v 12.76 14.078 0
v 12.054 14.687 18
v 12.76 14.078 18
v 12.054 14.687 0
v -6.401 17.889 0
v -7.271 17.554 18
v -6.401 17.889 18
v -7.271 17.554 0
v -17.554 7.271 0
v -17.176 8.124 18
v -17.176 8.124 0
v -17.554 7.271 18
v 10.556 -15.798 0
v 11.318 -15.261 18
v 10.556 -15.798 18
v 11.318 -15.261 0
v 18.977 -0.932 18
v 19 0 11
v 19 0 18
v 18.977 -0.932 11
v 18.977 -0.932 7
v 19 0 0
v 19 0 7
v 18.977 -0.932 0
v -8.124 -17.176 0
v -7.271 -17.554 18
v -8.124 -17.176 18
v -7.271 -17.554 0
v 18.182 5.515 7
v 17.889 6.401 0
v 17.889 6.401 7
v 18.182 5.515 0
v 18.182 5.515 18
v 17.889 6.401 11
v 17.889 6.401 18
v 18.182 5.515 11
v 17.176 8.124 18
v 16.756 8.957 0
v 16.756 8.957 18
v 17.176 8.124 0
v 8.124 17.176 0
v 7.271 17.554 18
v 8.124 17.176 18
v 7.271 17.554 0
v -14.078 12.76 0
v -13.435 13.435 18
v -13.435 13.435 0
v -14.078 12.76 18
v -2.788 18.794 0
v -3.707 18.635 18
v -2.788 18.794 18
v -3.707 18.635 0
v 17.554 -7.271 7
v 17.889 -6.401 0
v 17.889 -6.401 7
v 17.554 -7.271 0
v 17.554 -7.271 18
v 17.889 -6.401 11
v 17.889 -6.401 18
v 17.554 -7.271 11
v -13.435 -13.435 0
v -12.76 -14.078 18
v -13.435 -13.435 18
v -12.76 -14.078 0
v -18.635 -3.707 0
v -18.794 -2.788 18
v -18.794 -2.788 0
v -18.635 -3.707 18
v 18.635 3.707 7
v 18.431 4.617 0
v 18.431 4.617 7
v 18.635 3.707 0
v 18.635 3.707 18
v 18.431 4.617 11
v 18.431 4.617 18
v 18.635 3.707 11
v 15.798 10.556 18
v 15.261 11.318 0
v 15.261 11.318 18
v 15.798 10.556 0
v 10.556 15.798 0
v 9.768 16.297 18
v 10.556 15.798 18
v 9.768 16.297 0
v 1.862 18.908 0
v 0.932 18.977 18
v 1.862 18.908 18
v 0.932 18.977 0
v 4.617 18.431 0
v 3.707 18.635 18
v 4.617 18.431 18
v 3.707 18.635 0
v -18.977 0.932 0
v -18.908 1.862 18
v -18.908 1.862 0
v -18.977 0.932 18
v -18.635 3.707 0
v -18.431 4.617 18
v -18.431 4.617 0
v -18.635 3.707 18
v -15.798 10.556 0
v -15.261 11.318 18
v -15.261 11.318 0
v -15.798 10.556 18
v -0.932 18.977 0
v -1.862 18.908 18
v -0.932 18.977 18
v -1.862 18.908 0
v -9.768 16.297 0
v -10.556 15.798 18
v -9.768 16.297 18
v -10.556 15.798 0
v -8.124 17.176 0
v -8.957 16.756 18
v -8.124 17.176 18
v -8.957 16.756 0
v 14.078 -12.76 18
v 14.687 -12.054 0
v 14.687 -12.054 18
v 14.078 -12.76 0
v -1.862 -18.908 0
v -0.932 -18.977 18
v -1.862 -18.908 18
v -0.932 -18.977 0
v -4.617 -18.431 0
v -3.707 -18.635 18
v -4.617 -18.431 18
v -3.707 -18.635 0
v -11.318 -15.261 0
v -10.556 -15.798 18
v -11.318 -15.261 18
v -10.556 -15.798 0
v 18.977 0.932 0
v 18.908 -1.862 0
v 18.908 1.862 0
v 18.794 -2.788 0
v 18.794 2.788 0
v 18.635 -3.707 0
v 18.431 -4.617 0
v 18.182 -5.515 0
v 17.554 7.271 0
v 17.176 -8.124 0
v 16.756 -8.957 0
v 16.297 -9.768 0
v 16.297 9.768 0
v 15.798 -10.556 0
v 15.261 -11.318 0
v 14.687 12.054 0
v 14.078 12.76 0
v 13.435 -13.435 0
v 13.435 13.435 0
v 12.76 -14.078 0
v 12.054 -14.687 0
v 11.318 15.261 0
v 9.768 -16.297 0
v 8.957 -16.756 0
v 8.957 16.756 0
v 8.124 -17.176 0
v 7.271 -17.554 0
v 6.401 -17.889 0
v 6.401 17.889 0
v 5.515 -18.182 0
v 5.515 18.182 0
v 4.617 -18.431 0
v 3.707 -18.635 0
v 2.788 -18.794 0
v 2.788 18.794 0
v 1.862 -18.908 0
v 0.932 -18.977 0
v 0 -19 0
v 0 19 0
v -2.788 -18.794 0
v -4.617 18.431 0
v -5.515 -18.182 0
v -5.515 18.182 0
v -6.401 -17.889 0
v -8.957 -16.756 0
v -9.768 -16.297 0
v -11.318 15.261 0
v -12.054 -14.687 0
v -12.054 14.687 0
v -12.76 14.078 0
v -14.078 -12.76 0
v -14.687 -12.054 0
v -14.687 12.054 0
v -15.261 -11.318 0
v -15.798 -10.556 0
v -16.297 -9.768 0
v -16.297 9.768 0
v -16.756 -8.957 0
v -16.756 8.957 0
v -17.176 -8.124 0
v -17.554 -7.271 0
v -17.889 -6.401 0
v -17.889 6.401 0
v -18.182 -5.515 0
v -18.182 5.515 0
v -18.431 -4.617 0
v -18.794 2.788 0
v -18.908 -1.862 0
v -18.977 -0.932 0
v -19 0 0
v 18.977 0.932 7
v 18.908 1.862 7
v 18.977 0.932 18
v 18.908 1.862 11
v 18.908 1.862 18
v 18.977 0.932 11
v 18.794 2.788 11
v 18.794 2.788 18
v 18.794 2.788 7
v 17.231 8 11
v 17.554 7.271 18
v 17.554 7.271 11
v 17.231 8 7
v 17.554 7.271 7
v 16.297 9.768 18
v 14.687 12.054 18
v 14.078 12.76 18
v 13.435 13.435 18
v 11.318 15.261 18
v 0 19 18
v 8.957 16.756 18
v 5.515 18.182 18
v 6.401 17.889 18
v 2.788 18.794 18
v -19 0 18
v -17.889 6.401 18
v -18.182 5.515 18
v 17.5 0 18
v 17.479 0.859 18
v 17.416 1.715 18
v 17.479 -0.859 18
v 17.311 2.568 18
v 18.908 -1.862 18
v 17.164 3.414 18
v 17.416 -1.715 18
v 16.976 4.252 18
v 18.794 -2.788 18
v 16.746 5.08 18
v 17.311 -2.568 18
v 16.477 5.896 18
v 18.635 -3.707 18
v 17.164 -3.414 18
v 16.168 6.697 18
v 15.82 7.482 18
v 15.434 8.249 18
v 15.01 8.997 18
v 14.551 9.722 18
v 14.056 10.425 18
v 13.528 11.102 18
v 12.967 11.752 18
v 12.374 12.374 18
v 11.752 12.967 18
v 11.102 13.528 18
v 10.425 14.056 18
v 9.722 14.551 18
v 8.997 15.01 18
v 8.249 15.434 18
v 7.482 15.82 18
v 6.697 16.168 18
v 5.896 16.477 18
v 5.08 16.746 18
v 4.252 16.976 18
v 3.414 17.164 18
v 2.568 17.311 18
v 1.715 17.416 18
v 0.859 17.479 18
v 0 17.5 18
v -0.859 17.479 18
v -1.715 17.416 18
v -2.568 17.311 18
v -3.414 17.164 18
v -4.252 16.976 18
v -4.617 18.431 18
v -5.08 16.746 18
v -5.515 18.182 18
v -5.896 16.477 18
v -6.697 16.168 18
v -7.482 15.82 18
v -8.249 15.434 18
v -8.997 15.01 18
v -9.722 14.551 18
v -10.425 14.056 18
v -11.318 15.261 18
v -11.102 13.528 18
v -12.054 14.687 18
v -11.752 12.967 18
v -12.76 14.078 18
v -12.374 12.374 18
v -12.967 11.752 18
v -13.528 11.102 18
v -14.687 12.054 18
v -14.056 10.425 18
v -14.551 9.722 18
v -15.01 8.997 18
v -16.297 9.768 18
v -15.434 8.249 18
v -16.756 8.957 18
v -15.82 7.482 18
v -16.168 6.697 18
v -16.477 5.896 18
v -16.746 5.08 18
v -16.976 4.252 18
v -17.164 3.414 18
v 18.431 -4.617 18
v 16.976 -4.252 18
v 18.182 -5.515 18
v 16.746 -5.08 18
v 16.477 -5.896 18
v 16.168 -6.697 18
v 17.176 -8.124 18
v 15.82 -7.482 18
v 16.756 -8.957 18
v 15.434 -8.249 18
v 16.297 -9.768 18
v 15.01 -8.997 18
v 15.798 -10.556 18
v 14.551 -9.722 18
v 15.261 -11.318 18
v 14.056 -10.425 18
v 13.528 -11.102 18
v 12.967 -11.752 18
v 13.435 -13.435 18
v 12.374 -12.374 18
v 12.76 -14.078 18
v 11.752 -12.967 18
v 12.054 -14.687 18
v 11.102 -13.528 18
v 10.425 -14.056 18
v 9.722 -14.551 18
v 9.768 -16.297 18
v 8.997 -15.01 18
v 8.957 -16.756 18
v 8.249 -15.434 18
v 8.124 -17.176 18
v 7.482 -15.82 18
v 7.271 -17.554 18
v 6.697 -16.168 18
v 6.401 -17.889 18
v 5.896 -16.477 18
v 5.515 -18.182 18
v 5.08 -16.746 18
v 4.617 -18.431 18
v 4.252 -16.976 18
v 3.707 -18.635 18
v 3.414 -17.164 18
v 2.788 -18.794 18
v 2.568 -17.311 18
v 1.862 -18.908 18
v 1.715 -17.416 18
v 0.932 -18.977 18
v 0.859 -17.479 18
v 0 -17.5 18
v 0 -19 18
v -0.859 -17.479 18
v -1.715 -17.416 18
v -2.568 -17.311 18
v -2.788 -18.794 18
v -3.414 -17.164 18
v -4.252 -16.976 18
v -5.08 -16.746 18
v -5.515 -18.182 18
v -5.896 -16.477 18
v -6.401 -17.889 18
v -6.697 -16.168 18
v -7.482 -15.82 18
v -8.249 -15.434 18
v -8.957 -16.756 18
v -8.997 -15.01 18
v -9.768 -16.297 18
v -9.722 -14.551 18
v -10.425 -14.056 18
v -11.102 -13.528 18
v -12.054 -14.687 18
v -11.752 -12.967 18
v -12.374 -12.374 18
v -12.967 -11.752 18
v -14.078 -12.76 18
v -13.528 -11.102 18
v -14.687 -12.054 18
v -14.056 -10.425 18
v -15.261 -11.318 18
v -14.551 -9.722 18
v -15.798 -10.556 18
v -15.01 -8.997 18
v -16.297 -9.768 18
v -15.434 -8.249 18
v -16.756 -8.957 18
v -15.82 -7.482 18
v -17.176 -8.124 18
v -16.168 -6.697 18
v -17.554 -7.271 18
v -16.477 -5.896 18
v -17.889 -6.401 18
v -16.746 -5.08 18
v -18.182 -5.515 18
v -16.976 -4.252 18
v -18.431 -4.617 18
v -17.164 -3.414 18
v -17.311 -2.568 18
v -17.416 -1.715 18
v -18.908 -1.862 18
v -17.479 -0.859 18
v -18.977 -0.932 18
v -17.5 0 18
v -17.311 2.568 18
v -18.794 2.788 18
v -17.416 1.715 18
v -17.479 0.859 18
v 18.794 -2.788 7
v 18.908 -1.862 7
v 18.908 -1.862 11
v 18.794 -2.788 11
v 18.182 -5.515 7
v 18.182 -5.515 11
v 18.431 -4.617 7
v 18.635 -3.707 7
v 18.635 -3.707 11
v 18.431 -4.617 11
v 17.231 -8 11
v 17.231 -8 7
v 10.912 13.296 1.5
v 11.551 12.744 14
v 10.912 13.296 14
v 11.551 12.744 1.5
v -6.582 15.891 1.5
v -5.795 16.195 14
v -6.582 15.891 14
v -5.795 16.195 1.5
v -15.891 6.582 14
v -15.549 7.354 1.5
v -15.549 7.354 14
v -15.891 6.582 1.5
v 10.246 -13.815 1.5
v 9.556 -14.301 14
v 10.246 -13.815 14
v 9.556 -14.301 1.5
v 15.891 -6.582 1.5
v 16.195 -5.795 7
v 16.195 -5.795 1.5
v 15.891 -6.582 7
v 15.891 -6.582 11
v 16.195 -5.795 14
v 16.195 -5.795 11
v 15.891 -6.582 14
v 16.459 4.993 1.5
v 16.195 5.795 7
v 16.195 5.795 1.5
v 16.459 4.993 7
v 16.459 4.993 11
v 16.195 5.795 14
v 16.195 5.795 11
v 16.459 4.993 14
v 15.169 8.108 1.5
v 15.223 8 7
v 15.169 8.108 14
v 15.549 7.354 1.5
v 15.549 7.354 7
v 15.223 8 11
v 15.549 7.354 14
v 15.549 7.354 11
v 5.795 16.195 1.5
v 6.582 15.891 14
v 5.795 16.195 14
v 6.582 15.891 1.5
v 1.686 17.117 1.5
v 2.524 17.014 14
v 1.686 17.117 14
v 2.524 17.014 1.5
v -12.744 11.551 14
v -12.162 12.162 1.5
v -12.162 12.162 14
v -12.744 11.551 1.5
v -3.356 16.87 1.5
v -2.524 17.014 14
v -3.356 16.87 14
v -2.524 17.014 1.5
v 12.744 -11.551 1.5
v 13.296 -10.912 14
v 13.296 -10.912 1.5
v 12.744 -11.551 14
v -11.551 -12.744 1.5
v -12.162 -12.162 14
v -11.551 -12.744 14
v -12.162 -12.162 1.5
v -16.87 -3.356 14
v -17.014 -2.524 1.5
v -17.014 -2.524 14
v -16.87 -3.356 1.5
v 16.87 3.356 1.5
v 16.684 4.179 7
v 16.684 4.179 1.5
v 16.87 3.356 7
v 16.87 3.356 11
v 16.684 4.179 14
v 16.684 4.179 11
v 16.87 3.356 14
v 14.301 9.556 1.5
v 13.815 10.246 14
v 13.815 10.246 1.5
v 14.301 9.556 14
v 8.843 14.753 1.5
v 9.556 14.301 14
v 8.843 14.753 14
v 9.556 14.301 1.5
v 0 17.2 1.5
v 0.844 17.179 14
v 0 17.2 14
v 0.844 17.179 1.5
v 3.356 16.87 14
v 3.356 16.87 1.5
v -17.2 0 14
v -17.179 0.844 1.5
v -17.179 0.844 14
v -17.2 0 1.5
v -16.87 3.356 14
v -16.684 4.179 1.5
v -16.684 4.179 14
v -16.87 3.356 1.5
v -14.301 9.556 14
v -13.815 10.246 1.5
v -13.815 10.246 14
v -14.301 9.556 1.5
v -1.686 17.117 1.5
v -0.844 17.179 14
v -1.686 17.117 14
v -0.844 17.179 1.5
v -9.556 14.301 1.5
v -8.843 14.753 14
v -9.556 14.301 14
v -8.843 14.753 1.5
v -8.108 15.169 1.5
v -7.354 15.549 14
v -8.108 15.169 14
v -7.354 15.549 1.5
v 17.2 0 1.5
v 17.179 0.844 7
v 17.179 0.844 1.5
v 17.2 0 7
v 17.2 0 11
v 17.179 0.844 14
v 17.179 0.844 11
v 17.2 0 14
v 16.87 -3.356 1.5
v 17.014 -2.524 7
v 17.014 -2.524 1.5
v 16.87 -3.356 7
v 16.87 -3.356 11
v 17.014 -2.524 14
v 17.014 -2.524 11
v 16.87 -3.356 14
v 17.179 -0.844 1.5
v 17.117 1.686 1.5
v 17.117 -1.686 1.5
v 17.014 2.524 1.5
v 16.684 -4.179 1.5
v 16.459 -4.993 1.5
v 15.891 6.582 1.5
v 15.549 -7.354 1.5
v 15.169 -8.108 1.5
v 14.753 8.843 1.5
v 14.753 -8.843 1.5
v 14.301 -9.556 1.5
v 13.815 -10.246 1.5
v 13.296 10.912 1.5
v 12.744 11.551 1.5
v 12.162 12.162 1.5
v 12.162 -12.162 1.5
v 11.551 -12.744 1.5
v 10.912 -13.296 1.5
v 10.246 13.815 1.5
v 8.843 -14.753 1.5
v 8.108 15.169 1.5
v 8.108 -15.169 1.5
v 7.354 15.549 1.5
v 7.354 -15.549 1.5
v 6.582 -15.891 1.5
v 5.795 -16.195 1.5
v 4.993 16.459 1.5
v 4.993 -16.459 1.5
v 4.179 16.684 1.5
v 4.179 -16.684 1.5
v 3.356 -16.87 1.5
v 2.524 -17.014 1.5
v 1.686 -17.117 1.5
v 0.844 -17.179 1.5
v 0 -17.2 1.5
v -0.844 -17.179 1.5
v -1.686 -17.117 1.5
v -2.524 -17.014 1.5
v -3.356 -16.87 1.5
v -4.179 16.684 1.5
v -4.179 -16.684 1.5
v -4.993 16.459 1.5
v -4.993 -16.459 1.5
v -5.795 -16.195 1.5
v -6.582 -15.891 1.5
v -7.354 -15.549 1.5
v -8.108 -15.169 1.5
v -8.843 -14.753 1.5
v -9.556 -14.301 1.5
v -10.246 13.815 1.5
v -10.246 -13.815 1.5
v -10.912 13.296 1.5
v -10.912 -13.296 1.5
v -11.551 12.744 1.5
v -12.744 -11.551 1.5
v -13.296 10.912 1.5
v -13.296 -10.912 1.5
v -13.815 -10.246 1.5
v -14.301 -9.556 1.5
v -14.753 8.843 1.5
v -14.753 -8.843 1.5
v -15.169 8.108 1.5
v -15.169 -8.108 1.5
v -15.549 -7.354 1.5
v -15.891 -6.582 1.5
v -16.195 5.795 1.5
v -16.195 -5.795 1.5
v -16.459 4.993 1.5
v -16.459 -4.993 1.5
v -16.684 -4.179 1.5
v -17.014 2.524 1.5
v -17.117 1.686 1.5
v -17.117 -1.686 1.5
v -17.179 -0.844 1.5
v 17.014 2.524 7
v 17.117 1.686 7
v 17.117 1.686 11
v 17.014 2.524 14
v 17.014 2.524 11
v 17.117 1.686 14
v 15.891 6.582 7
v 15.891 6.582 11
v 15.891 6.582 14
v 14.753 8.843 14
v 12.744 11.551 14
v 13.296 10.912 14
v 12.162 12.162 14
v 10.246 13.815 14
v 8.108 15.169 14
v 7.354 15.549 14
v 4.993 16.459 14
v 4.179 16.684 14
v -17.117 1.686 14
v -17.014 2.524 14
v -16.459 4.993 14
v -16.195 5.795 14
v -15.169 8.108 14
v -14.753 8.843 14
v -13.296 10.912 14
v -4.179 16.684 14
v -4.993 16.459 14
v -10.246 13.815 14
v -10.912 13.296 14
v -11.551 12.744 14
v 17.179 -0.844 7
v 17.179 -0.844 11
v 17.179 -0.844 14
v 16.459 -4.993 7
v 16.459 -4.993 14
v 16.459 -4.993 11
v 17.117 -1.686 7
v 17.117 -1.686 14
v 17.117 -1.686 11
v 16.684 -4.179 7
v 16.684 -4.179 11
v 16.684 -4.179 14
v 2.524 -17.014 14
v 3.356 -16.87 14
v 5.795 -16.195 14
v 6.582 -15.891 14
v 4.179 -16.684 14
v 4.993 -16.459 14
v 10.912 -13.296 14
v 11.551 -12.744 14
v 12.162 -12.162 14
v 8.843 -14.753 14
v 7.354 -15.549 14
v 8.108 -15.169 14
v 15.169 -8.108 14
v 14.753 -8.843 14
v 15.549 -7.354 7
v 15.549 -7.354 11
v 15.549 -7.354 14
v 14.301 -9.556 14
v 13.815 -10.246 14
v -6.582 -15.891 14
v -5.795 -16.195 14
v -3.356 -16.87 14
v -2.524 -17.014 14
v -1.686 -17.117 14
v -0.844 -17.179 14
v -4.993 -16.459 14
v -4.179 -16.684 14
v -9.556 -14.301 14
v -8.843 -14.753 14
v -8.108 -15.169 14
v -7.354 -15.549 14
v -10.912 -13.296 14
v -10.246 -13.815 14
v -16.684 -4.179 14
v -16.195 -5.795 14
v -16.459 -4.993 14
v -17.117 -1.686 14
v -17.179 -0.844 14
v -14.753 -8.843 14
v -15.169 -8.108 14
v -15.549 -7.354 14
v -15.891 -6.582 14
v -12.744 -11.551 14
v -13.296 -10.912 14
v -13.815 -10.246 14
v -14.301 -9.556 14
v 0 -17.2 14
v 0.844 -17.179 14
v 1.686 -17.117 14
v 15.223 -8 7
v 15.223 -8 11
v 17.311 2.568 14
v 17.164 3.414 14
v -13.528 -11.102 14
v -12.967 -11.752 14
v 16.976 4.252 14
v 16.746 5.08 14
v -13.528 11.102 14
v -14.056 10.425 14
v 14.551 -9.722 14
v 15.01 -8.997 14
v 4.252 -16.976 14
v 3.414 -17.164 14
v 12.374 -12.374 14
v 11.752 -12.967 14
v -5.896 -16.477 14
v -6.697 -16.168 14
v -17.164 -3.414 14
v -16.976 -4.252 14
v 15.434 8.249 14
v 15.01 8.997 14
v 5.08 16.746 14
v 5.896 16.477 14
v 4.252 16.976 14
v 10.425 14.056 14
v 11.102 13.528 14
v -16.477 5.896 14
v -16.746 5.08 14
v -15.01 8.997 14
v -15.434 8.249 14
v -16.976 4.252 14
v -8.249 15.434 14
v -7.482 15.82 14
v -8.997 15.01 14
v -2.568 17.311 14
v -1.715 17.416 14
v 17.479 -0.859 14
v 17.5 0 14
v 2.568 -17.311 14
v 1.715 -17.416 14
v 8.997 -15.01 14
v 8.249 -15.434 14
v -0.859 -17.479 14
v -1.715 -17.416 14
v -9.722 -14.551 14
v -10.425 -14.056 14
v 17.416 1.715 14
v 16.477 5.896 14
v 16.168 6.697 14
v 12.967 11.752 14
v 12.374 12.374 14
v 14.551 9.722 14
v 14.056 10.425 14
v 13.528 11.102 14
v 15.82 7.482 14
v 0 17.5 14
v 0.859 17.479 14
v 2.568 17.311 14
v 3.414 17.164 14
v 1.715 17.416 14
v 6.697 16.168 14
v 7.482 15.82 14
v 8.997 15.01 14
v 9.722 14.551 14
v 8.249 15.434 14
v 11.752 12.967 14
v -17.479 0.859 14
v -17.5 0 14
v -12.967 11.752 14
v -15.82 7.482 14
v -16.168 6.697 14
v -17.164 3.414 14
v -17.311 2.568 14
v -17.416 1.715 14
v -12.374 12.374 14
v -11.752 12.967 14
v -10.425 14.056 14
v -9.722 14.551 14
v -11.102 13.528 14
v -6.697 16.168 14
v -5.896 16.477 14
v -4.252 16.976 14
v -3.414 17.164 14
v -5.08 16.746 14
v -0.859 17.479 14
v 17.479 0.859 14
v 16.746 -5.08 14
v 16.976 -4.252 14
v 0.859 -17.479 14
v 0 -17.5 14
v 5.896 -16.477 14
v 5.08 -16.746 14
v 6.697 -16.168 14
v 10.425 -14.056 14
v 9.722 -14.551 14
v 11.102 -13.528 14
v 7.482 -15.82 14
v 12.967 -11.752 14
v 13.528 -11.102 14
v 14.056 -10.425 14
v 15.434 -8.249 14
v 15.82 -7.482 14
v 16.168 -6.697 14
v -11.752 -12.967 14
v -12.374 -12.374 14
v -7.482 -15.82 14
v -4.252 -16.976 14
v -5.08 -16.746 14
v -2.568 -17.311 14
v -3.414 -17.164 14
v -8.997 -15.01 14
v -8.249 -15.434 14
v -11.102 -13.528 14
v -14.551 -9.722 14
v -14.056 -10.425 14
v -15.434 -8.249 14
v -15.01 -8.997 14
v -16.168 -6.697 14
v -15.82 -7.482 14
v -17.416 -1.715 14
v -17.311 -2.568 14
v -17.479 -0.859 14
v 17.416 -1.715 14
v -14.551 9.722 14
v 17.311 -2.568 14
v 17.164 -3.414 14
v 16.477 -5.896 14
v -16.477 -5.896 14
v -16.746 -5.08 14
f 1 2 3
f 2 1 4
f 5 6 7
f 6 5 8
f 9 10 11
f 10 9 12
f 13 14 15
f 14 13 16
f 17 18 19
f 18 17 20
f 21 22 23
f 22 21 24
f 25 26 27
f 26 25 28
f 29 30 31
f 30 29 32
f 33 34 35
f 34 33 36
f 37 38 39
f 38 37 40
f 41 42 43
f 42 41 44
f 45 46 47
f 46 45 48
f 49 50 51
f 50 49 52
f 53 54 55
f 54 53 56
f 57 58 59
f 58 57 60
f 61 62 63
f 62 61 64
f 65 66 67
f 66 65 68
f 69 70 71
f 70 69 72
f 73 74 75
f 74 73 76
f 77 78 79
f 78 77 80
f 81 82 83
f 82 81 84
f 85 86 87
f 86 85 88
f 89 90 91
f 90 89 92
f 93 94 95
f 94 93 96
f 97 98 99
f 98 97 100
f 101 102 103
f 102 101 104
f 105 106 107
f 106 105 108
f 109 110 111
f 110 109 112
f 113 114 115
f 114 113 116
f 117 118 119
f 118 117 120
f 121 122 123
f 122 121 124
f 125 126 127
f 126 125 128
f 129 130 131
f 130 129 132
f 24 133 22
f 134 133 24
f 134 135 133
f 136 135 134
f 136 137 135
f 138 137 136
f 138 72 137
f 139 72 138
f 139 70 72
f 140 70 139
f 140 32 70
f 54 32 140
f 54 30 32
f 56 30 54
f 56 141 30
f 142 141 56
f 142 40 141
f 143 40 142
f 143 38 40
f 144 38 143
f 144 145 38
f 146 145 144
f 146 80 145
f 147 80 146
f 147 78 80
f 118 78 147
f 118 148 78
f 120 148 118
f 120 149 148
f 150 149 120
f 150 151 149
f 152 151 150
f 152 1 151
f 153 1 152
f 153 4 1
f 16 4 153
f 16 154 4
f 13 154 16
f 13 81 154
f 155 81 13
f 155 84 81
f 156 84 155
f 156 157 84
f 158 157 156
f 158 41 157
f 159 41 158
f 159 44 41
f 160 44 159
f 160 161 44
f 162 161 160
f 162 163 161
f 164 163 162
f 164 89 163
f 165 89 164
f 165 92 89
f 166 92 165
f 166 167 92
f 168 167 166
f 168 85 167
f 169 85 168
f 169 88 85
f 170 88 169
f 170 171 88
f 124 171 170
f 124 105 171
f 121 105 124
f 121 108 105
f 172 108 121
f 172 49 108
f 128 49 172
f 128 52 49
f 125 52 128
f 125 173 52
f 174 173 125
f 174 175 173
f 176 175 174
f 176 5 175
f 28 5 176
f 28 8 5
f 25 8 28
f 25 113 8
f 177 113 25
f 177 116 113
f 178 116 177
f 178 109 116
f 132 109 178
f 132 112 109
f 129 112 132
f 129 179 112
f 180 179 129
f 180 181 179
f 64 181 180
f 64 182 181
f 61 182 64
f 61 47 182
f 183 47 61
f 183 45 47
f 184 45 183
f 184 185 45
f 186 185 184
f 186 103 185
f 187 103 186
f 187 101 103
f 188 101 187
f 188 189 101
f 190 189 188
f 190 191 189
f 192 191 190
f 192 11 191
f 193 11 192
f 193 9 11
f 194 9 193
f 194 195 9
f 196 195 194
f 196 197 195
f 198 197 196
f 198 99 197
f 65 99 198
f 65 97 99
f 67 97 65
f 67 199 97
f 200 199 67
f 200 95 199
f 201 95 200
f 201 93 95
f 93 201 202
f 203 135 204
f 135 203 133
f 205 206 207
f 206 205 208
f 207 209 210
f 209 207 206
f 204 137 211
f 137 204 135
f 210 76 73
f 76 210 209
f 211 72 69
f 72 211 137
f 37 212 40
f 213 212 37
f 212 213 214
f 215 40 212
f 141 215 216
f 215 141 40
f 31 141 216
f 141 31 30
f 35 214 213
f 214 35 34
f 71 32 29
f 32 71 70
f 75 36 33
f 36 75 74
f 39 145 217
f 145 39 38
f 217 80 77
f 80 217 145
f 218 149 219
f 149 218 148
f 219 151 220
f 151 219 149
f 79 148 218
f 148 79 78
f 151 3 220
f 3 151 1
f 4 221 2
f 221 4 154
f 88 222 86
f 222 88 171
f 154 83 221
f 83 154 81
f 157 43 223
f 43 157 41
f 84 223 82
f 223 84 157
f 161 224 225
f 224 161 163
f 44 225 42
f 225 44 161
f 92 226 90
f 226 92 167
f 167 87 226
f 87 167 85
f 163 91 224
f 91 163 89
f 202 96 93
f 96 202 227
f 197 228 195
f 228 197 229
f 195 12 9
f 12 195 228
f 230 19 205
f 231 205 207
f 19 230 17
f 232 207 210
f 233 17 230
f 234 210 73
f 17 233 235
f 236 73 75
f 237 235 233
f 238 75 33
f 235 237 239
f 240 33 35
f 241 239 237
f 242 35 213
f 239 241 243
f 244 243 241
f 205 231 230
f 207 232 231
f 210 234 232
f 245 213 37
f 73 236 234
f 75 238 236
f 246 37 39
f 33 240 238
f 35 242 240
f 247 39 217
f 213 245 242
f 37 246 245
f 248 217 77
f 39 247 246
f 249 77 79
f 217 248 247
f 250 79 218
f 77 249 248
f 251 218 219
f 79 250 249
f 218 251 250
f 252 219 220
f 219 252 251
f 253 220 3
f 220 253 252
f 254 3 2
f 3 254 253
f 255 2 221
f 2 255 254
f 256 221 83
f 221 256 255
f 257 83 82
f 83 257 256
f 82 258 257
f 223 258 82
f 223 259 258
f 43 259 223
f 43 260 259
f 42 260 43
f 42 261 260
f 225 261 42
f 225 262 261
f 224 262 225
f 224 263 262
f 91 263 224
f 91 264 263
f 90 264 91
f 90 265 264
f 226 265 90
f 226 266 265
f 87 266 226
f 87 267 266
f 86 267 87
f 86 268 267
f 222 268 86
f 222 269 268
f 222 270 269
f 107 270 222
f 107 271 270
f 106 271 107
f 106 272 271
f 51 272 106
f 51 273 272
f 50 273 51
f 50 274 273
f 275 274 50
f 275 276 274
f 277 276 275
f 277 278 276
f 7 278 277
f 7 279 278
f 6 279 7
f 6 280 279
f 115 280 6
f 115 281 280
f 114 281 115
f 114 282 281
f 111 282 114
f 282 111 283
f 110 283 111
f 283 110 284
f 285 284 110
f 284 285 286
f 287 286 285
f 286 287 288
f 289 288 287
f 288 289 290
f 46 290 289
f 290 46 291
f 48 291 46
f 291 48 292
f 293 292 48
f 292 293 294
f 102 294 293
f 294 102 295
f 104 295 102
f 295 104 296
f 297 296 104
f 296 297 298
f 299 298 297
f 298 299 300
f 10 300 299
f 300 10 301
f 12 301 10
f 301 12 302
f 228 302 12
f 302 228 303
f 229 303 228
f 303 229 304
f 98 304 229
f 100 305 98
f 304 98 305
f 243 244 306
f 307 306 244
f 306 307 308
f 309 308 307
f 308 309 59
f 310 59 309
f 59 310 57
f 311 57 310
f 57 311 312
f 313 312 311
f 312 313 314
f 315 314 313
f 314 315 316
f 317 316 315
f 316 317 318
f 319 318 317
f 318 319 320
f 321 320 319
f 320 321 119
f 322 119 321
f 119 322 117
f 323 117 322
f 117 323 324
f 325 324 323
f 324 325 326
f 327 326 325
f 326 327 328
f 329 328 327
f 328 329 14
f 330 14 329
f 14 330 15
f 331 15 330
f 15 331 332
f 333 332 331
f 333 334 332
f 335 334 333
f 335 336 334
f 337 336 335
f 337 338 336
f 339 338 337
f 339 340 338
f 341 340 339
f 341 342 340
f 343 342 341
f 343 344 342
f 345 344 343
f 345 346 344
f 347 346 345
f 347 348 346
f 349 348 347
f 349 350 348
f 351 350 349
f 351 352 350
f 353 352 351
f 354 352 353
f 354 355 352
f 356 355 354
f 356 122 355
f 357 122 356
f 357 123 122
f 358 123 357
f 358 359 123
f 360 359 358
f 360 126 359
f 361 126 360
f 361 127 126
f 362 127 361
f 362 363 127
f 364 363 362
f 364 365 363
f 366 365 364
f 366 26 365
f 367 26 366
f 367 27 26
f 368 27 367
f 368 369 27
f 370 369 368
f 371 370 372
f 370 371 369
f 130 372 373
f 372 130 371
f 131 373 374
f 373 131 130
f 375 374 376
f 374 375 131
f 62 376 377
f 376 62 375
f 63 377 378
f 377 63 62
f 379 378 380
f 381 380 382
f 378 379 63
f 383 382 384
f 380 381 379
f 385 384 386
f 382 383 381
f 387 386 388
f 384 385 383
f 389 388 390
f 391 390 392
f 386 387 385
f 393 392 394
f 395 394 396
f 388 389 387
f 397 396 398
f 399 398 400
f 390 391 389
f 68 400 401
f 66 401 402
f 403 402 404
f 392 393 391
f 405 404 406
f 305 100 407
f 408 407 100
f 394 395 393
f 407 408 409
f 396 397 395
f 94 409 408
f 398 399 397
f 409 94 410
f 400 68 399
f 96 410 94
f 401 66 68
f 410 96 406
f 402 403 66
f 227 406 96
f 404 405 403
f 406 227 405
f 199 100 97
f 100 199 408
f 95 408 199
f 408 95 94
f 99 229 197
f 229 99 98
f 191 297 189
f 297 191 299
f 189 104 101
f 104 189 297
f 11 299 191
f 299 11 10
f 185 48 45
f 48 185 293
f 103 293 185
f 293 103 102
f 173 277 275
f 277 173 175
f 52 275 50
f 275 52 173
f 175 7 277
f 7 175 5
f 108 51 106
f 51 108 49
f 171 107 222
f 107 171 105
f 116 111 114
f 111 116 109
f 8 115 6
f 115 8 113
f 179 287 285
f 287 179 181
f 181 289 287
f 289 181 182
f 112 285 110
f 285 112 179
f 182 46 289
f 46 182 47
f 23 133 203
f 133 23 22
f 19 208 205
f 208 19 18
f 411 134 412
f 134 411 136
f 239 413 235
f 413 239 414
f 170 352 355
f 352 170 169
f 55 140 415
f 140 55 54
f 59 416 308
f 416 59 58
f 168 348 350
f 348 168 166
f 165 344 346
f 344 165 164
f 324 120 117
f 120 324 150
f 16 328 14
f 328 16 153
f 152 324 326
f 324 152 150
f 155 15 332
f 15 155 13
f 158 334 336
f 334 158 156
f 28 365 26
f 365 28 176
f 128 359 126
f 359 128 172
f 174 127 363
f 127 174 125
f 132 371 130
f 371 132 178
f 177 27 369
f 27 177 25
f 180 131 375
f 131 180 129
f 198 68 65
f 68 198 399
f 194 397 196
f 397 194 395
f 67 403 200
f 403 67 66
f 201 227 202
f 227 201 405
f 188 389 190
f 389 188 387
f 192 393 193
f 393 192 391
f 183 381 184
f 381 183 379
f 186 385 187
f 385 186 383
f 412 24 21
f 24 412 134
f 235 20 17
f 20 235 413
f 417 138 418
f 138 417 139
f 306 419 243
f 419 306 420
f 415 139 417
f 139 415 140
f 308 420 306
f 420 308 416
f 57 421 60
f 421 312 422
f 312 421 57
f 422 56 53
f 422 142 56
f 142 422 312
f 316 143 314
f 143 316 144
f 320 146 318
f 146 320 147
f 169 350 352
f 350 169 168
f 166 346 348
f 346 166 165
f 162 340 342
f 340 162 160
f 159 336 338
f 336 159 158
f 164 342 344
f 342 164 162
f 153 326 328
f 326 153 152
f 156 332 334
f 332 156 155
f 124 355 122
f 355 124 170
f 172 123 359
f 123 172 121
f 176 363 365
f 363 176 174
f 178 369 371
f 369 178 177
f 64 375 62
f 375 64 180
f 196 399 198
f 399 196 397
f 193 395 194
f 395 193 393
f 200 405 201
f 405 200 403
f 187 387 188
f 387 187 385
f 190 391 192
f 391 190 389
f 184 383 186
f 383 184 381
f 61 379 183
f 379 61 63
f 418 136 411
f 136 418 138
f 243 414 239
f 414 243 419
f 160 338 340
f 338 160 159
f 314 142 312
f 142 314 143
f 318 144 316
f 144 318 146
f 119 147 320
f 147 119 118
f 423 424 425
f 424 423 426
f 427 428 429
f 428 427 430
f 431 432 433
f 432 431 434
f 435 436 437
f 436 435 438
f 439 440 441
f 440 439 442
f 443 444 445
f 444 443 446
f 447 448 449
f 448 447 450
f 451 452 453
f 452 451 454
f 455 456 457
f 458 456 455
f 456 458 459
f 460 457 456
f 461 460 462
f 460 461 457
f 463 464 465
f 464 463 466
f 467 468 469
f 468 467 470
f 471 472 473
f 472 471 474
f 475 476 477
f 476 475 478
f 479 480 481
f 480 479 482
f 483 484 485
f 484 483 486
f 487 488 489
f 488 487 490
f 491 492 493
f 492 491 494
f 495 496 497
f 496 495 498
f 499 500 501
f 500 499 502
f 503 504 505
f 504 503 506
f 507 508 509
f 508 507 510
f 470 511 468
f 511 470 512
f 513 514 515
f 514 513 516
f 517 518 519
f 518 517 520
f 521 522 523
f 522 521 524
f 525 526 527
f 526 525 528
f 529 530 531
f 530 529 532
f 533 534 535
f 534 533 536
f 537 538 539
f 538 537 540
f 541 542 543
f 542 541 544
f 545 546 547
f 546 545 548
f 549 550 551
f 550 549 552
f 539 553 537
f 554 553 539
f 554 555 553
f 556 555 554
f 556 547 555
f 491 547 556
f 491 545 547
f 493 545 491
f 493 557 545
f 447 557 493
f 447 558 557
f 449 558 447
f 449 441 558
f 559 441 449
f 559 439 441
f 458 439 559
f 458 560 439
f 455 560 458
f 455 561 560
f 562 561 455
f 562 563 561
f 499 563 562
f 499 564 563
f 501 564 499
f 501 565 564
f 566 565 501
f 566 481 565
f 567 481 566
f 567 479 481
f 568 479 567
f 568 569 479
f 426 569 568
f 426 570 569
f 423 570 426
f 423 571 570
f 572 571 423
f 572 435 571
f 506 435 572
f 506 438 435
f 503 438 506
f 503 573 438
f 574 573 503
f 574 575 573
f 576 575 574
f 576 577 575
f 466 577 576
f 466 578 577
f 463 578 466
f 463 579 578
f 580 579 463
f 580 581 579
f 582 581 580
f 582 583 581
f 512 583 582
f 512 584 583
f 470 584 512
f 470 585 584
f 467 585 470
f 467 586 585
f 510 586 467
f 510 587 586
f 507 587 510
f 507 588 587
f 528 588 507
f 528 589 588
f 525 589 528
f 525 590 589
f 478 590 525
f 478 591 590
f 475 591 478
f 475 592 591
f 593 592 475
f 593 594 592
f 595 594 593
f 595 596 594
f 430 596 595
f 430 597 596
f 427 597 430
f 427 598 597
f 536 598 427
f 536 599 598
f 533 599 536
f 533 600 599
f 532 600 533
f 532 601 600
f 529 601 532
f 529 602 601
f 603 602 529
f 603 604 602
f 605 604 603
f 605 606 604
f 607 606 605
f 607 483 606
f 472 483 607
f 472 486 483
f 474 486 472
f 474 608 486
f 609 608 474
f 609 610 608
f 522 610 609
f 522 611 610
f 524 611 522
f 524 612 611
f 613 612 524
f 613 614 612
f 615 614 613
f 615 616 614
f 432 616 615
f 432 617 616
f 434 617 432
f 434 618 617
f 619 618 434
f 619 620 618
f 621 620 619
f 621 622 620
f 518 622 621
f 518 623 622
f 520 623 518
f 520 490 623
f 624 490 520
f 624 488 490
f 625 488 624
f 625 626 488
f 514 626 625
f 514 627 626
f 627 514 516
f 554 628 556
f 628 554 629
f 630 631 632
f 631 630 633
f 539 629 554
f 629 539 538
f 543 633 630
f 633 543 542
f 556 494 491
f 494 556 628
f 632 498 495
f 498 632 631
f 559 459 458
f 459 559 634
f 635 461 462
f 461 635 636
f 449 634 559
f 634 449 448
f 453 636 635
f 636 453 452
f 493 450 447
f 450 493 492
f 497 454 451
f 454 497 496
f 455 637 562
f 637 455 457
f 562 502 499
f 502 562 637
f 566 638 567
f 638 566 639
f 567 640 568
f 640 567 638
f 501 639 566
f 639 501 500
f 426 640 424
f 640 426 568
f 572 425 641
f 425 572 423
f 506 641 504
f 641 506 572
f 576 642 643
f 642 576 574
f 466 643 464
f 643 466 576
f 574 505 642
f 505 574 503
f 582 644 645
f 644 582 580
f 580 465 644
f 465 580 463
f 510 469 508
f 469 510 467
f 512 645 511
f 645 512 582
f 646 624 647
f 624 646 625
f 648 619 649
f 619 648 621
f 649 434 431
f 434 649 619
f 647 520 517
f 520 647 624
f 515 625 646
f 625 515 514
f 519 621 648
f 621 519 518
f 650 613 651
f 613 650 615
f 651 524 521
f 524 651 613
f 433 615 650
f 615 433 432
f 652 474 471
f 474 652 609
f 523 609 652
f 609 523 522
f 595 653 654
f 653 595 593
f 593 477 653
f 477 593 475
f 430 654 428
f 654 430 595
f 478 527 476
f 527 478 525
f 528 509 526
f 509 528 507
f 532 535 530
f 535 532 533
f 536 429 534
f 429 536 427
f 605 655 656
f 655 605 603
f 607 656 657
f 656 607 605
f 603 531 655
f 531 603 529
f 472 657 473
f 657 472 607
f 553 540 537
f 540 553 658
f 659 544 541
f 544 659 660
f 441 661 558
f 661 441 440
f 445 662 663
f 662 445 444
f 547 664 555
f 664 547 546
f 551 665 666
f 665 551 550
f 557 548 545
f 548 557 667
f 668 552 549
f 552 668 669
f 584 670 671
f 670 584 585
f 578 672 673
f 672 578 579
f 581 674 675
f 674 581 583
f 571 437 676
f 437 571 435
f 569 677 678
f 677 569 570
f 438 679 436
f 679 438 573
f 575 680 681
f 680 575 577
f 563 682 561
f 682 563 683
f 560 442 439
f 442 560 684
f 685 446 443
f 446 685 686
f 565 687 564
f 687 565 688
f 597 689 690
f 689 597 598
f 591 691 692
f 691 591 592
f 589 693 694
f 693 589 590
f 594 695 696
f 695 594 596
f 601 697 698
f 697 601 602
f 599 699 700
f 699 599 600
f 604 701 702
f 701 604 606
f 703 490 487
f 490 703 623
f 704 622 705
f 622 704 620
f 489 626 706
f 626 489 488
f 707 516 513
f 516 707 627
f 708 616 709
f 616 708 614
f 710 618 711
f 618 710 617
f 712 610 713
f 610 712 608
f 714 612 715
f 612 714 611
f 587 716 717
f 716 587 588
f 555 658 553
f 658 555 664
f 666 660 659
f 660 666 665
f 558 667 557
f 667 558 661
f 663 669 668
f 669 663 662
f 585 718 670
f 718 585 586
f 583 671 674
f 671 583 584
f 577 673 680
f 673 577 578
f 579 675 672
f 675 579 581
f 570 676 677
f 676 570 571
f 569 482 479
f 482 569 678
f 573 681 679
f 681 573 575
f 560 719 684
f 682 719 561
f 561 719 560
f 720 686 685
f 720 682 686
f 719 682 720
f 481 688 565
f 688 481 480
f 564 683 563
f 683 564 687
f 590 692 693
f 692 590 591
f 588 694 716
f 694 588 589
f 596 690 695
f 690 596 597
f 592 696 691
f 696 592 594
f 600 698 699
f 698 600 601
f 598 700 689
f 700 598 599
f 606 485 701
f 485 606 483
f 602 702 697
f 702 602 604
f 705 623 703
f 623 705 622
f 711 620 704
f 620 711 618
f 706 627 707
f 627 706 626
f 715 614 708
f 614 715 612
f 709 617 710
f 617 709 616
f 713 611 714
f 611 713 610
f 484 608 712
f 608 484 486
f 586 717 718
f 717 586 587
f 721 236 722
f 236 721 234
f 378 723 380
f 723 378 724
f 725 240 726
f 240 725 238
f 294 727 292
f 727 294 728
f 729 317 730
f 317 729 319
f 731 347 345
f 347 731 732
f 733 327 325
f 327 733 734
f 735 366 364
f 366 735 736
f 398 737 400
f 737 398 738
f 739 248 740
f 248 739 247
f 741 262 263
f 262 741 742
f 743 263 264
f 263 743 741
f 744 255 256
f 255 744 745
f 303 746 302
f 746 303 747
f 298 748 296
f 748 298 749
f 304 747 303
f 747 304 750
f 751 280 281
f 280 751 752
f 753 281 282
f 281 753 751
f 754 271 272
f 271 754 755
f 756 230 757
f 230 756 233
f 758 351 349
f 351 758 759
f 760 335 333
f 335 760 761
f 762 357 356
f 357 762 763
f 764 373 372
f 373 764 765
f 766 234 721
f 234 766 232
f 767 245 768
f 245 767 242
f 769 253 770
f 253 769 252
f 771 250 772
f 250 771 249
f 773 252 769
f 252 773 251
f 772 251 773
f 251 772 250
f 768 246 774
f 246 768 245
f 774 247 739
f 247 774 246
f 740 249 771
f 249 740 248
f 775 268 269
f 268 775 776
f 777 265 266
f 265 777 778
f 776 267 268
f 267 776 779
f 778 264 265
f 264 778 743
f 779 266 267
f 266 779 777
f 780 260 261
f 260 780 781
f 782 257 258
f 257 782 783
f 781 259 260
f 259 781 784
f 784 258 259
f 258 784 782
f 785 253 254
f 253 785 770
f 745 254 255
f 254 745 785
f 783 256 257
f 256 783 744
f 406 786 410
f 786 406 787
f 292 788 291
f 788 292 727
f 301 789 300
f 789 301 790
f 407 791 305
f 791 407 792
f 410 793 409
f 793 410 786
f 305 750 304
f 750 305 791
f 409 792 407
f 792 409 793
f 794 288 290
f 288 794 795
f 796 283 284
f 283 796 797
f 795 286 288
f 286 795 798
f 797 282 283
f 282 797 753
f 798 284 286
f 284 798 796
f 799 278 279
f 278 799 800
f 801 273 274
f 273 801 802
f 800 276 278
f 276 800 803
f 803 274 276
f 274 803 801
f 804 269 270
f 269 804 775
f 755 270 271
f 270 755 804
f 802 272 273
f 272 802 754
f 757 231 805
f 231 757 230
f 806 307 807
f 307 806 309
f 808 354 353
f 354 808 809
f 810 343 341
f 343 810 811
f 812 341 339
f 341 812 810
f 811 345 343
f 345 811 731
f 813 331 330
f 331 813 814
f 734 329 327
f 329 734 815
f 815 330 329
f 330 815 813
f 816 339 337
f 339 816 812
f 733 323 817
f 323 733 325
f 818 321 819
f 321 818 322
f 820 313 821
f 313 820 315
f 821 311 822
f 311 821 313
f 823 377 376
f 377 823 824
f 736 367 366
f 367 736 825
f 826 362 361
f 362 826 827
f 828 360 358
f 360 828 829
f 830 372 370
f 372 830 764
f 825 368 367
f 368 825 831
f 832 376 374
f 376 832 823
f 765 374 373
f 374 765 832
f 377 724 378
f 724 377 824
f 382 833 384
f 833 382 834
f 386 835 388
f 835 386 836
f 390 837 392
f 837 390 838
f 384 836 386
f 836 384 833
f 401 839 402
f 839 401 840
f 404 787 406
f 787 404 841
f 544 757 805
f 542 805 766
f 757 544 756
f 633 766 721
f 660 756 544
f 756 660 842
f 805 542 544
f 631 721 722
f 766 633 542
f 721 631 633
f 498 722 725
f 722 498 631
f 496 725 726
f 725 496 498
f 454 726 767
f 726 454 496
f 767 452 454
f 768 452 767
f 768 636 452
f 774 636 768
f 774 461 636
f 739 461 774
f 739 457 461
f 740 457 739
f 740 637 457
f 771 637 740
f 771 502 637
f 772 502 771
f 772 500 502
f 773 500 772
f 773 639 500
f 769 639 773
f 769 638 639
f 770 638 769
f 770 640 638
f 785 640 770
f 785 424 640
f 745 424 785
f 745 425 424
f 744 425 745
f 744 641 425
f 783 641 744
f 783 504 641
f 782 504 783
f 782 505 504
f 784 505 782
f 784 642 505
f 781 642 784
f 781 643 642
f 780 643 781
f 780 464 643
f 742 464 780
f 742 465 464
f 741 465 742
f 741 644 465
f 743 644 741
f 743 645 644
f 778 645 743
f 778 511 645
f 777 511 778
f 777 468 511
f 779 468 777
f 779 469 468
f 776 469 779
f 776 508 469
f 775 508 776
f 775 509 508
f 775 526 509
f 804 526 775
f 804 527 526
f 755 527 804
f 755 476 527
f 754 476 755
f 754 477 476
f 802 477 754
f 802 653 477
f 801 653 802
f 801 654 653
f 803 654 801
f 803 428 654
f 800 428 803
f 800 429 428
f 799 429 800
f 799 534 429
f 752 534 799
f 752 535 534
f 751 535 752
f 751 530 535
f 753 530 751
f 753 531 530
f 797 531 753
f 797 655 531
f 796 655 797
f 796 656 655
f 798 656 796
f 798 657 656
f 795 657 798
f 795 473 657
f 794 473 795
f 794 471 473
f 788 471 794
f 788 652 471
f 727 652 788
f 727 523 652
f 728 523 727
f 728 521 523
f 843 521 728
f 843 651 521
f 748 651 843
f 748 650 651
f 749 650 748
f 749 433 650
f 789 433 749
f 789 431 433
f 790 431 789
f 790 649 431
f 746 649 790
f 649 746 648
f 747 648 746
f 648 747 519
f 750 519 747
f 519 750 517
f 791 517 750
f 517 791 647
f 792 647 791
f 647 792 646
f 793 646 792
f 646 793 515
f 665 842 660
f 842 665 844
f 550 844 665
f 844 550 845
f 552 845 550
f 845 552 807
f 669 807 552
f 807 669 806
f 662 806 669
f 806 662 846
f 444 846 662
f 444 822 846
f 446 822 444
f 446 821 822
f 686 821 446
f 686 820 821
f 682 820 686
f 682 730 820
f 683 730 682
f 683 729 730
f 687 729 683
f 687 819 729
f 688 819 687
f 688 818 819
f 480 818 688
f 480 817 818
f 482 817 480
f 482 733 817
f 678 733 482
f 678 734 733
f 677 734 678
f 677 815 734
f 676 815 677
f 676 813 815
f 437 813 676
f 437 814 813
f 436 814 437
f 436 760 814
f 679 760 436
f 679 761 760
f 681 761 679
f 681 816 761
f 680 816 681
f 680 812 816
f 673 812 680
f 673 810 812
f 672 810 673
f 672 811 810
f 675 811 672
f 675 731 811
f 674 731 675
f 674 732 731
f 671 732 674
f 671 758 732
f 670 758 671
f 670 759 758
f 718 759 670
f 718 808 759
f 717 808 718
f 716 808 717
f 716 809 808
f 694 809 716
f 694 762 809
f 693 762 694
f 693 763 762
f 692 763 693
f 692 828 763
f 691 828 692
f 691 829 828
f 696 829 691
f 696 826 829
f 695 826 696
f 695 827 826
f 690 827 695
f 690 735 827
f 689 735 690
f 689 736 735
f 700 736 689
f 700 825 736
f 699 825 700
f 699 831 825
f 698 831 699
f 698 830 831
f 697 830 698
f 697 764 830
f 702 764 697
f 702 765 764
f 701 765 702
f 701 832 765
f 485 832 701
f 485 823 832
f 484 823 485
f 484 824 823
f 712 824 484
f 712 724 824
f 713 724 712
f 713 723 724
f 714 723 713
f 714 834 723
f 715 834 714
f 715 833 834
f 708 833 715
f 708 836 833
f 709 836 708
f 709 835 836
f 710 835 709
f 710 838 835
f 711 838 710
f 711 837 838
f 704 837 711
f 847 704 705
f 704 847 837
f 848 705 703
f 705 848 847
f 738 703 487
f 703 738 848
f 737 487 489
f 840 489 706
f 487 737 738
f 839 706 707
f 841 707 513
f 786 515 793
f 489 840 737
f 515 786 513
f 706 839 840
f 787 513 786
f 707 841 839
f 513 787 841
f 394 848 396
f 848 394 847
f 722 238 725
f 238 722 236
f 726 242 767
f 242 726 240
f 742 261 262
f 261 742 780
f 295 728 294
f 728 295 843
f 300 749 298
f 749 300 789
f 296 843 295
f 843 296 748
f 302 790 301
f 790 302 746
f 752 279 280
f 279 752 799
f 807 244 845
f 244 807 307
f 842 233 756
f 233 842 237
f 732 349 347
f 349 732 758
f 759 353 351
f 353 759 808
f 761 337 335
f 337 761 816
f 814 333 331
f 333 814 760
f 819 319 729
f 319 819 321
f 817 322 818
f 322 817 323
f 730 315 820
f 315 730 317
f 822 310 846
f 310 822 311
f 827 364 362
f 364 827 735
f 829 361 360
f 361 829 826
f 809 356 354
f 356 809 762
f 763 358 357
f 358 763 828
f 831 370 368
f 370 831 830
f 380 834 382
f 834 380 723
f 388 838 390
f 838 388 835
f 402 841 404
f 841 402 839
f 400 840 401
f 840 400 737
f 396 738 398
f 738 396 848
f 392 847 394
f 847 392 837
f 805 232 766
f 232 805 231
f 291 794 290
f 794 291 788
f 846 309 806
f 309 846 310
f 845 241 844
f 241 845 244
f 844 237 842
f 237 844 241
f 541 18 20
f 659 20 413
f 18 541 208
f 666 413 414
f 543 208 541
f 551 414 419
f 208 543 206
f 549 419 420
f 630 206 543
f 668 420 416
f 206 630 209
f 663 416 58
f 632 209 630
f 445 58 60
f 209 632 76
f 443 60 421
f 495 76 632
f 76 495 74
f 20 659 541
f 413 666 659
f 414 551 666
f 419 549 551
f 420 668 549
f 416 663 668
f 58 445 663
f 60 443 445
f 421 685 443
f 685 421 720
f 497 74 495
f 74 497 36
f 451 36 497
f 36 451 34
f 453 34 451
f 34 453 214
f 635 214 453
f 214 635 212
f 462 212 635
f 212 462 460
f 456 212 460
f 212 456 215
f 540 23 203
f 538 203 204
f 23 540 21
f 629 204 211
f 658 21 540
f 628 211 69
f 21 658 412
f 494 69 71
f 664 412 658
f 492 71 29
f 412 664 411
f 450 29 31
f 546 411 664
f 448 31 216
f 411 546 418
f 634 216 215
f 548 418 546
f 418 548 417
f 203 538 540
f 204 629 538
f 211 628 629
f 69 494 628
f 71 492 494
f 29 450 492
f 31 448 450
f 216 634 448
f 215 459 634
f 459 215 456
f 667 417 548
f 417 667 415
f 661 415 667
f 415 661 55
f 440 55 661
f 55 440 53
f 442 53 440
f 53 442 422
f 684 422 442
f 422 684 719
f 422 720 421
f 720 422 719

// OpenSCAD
slack = 0.5;
holes_radius = 15.5;
screw_M4 = 3.5 / 2;

module motor_cap_slanted(m_d = 35, thickness = 1.2){
  difference() {
    union() {
      // Main Body
      translate([0, 0, 0])
      cylinder(d1 = 30, d2 = m_d, h = 14, $fn = 50, center = false);
      translate([0, 0, 14])
      cylinder(d = m_d, h = 6, $fn = 50, center = false);
    }
    translate([0, 0, thickness])
    cylinder(d1 = 30 - thickness, d2 = m_d - thickness, h = 14, $fn = 50, center = false);
    translate([0, 0, 14 + thickness])
    cylinder(d = m_d - thickness, h = 6, $fn = 50, center = false);


    //translate([0, 0, thickness])
    translate([25, 0, 14 + 2])
    cube([50, 12, 10], center = true);


  }
}

module motor_cap(m_d = 35, m_h = 12.5 + 4, m_sup = 4 , thickness = 1.5){
  $fn = 128;
  difference() {
    union() {
      // Main Body
      translate([0, 0, 0])
      cylinder(d = m_d + 2 * thickness, h = m_h + thickness,  center = false);
    }
    translate([0, 0, thickness])
    cylinder(d = m_d - 0.6, h = m_h, center = false);

    translate([0, 0, thickness + m_h - m_sup])
    cylinder(d = m_d, h = m_h, center = false);

    translate([25, 0, m_h  + thickness - 9])
    cube([50, 16, 4], center = true);


  }
}



motor_cap();
